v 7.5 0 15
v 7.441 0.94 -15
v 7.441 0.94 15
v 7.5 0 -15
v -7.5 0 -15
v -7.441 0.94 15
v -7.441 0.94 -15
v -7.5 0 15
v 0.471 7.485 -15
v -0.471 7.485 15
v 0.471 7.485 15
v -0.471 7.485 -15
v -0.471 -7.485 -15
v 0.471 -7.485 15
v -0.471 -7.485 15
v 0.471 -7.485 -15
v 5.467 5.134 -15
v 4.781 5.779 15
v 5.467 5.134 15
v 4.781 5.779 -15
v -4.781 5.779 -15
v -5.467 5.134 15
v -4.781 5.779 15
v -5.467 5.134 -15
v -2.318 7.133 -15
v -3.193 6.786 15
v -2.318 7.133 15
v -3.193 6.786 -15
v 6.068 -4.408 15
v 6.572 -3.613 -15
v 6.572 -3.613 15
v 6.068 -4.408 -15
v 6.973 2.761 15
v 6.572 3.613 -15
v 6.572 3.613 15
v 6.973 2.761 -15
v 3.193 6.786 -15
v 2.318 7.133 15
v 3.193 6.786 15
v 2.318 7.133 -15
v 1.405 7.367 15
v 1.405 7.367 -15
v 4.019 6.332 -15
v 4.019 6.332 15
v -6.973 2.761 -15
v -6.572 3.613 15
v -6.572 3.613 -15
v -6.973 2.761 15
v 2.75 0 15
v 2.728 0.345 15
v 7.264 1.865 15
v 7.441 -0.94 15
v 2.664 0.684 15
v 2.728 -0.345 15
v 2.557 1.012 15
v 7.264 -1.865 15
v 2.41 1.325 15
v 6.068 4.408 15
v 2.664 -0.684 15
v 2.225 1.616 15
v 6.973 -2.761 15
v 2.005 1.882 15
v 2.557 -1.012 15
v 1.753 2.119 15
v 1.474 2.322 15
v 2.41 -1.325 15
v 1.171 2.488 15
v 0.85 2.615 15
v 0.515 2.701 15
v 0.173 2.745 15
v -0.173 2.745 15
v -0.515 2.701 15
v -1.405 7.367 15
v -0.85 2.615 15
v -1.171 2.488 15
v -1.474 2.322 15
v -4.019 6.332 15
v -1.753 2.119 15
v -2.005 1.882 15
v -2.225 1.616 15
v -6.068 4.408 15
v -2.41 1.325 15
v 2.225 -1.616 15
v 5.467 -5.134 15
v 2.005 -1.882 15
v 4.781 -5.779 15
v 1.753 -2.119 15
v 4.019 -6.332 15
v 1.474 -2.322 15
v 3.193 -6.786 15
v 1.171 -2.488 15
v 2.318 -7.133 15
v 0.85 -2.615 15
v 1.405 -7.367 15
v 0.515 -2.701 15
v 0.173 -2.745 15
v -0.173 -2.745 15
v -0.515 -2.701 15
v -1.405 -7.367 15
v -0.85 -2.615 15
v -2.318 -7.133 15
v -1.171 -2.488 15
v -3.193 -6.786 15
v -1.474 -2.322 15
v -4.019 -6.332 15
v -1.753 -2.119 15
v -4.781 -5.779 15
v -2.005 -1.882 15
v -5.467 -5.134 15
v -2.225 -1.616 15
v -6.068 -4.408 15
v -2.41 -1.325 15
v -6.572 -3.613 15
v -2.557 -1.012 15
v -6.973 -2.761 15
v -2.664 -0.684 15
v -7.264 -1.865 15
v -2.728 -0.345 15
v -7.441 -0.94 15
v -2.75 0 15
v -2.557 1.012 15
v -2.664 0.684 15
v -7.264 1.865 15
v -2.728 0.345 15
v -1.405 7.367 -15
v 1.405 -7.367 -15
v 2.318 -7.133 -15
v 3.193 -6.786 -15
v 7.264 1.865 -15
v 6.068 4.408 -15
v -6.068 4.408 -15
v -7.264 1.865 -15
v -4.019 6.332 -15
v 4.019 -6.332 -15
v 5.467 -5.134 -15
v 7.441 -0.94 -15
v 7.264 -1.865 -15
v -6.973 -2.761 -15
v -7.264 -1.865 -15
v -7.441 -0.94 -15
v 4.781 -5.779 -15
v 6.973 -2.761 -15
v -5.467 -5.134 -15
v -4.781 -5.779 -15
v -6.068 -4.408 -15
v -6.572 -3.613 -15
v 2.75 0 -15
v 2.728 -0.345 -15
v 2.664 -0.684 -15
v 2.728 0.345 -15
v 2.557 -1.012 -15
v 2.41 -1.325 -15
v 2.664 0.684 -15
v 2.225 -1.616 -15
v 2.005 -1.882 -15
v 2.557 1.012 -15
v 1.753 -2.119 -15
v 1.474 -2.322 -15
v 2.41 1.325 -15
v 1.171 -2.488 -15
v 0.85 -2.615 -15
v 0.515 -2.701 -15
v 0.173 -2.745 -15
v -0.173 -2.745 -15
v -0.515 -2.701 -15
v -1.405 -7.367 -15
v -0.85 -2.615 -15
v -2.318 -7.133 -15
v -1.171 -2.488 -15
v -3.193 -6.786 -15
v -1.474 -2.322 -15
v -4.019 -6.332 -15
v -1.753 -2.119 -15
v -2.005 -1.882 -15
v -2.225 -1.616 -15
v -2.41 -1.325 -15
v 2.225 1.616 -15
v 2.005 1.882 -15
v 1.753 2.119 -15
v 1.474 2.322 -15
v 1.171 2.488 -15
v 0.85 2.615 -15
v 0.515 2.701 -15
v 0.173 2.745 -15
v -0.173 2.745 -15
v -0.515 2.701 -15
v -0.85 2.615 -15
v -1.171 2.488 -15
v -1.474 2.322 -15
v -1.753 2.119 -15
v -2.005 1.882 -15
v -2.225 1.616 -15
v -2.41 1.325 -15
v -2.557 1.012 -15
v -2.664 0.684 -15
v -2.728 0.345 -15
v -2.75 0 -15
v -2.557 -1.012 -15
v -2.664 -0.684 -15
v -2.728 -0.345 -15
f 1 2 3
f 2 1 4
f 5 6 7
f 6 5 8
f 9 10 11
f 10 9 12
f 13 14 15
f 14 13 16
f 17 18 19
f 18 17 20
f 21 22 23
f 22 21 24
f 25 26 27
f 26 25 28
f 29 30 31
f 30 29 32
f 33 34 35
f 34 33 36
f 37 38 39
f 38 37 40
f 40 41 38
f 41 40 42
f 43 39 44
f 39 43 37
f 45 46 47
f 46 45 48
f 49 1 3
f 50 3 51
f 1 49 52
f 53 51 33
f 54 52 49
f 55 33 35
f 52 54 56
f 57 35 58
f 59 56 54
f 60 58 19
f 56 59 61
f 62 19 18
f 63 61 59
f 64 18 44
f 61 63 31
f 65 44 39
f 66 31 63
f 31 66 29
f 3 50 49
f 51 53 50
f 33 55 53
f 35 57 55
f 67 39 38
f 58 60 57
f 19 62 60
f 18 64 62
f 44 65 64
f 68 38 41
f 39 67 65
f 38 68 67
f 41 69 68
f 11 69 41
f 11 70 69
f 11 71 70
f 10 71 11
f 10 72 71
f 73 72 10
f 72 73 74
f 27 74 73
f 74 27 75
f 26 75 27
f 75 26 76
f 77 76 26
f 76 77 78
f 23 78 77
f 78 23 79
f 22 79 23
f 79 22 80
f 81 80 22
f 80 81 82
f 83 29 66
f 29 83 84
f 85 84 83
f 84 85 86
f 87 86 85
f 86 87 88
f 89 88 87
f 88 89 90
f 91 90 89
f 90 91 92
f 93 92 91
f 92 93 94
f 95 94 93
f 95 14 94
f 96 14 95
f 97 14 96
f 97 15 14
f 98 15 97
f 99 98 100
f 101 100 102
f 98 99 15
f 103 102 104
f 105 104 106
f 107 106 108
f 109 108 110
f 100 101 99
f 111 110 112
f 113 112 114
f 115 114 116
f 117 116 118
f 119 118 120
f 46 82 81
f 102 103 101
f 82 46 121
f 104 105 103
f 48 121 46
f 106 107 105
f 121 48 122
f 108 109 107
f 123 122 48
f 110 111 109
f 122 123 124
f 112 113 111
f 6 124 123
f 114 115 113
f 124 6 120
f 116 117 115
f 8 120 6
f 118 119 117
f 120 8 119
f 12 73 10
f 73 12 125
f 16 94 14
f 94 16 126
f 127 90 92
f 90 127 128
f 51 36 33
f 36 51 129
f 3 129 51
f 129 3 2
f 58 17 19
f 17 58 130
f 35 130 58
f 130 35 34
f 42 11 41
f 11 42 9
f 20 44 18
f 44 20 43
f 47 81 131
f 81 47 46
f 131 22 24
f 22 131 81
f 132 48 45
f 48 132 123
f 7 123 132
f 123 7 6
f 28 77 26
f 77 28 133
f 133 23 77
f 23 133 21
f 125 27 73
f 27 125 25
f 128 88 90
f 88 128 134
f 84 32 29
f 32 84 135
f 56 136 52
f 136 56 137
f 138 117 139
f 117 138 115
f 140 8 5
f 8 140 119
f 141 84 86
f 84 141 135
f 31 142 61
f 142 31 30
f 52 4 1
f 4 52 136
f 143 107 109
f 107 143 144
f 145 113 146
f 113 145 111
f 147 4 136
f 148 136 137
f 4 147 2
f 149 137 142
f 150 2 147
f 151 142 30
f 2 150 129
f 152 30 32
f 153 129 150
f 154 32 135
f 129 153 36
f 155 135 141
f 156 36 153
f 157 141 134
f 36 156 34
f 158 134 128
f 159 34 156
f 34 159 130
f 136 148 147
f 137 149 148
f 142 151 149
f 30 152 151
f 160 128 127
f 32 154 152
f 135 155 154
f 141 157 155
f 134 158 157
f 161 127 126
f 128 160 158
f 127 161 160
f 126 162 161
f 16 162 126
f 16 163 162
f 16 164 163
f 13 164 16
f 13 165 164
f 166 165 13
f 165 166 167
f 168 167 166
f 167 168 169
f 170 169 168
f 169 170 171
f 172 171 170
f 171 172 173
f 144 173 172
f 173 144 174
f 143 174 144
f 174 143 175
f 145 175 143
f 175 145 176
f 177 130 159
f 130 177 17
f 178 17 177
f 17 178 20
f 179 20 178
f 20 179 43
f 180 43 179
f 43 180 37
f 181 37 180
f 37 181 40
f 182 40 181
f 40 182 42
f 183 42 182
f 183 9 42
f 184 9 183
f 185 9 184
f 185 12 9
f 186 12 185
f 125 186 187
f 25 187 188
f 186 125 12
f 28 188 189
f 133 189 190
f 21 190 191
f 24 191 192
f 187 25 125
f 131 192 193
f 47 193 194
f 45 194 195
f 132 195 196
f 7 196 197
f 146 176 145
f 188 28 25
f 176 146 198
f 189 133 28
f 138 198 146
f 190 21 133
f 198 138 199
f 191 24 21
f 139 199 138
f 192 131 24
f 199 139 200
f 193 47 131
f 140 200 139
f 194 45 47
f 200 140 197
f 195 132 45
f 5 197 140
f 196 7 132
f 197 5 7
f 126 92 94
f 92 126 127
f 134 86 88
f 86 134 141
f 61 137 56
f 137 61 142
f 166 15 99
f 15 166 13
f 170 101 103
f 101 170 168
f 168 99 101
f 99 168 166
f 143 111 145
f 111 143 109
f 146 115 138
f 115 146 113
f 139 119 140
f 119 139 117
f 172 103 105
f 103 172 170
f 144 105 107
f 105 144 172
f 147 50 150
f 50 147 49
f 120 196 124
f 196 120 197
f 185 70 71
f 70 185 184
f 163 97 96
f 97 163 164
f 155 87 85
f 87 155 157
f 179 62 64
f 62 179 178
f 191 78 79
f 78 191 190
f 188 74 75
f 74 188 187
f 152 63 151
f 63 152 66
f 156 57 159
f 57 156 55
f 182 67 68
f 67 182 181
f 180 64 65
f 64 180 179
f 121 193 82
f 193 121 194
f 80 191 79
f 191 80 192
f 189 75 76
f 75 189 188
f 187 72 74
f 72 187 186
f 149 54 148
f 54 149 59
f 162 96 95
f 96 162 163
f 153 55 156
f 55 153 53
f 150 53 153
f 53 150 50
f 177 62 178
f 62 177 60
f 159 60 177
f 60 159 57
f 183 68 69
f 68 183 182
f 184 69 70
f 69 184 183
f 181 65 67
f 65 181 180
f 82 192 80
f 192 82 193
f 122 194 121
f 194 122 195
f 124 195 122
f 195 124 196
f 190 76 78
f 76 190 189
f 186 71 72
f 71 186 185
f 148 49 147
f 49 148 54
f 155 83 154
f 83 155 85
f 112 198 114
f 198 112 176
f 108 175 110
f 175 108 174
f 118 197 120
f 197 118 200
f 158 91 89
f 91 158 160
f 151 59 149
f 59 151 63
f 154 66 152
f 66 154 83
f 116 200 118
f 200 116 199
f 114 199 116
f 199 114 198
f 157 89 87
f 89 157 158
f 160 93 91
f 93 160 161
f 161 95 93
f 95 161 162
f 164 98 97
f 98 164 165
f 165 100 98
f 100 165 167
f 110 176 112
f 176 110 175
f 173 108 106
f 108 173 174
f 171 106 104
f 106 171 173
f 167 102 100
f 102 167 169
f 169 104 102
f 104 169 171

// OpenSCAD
$fn = 50;


difference() {
	union() {
		translate(v = [0, 0, -15.0000000000]) {
			cylinder(h = 30, r = 7.5000000000);
		}
	}
	union() {
		translate(v = [0, 0, -100.0000000000]) {
			cylinder(h = 200, r = 2.7500000000);
		}
	}
}
